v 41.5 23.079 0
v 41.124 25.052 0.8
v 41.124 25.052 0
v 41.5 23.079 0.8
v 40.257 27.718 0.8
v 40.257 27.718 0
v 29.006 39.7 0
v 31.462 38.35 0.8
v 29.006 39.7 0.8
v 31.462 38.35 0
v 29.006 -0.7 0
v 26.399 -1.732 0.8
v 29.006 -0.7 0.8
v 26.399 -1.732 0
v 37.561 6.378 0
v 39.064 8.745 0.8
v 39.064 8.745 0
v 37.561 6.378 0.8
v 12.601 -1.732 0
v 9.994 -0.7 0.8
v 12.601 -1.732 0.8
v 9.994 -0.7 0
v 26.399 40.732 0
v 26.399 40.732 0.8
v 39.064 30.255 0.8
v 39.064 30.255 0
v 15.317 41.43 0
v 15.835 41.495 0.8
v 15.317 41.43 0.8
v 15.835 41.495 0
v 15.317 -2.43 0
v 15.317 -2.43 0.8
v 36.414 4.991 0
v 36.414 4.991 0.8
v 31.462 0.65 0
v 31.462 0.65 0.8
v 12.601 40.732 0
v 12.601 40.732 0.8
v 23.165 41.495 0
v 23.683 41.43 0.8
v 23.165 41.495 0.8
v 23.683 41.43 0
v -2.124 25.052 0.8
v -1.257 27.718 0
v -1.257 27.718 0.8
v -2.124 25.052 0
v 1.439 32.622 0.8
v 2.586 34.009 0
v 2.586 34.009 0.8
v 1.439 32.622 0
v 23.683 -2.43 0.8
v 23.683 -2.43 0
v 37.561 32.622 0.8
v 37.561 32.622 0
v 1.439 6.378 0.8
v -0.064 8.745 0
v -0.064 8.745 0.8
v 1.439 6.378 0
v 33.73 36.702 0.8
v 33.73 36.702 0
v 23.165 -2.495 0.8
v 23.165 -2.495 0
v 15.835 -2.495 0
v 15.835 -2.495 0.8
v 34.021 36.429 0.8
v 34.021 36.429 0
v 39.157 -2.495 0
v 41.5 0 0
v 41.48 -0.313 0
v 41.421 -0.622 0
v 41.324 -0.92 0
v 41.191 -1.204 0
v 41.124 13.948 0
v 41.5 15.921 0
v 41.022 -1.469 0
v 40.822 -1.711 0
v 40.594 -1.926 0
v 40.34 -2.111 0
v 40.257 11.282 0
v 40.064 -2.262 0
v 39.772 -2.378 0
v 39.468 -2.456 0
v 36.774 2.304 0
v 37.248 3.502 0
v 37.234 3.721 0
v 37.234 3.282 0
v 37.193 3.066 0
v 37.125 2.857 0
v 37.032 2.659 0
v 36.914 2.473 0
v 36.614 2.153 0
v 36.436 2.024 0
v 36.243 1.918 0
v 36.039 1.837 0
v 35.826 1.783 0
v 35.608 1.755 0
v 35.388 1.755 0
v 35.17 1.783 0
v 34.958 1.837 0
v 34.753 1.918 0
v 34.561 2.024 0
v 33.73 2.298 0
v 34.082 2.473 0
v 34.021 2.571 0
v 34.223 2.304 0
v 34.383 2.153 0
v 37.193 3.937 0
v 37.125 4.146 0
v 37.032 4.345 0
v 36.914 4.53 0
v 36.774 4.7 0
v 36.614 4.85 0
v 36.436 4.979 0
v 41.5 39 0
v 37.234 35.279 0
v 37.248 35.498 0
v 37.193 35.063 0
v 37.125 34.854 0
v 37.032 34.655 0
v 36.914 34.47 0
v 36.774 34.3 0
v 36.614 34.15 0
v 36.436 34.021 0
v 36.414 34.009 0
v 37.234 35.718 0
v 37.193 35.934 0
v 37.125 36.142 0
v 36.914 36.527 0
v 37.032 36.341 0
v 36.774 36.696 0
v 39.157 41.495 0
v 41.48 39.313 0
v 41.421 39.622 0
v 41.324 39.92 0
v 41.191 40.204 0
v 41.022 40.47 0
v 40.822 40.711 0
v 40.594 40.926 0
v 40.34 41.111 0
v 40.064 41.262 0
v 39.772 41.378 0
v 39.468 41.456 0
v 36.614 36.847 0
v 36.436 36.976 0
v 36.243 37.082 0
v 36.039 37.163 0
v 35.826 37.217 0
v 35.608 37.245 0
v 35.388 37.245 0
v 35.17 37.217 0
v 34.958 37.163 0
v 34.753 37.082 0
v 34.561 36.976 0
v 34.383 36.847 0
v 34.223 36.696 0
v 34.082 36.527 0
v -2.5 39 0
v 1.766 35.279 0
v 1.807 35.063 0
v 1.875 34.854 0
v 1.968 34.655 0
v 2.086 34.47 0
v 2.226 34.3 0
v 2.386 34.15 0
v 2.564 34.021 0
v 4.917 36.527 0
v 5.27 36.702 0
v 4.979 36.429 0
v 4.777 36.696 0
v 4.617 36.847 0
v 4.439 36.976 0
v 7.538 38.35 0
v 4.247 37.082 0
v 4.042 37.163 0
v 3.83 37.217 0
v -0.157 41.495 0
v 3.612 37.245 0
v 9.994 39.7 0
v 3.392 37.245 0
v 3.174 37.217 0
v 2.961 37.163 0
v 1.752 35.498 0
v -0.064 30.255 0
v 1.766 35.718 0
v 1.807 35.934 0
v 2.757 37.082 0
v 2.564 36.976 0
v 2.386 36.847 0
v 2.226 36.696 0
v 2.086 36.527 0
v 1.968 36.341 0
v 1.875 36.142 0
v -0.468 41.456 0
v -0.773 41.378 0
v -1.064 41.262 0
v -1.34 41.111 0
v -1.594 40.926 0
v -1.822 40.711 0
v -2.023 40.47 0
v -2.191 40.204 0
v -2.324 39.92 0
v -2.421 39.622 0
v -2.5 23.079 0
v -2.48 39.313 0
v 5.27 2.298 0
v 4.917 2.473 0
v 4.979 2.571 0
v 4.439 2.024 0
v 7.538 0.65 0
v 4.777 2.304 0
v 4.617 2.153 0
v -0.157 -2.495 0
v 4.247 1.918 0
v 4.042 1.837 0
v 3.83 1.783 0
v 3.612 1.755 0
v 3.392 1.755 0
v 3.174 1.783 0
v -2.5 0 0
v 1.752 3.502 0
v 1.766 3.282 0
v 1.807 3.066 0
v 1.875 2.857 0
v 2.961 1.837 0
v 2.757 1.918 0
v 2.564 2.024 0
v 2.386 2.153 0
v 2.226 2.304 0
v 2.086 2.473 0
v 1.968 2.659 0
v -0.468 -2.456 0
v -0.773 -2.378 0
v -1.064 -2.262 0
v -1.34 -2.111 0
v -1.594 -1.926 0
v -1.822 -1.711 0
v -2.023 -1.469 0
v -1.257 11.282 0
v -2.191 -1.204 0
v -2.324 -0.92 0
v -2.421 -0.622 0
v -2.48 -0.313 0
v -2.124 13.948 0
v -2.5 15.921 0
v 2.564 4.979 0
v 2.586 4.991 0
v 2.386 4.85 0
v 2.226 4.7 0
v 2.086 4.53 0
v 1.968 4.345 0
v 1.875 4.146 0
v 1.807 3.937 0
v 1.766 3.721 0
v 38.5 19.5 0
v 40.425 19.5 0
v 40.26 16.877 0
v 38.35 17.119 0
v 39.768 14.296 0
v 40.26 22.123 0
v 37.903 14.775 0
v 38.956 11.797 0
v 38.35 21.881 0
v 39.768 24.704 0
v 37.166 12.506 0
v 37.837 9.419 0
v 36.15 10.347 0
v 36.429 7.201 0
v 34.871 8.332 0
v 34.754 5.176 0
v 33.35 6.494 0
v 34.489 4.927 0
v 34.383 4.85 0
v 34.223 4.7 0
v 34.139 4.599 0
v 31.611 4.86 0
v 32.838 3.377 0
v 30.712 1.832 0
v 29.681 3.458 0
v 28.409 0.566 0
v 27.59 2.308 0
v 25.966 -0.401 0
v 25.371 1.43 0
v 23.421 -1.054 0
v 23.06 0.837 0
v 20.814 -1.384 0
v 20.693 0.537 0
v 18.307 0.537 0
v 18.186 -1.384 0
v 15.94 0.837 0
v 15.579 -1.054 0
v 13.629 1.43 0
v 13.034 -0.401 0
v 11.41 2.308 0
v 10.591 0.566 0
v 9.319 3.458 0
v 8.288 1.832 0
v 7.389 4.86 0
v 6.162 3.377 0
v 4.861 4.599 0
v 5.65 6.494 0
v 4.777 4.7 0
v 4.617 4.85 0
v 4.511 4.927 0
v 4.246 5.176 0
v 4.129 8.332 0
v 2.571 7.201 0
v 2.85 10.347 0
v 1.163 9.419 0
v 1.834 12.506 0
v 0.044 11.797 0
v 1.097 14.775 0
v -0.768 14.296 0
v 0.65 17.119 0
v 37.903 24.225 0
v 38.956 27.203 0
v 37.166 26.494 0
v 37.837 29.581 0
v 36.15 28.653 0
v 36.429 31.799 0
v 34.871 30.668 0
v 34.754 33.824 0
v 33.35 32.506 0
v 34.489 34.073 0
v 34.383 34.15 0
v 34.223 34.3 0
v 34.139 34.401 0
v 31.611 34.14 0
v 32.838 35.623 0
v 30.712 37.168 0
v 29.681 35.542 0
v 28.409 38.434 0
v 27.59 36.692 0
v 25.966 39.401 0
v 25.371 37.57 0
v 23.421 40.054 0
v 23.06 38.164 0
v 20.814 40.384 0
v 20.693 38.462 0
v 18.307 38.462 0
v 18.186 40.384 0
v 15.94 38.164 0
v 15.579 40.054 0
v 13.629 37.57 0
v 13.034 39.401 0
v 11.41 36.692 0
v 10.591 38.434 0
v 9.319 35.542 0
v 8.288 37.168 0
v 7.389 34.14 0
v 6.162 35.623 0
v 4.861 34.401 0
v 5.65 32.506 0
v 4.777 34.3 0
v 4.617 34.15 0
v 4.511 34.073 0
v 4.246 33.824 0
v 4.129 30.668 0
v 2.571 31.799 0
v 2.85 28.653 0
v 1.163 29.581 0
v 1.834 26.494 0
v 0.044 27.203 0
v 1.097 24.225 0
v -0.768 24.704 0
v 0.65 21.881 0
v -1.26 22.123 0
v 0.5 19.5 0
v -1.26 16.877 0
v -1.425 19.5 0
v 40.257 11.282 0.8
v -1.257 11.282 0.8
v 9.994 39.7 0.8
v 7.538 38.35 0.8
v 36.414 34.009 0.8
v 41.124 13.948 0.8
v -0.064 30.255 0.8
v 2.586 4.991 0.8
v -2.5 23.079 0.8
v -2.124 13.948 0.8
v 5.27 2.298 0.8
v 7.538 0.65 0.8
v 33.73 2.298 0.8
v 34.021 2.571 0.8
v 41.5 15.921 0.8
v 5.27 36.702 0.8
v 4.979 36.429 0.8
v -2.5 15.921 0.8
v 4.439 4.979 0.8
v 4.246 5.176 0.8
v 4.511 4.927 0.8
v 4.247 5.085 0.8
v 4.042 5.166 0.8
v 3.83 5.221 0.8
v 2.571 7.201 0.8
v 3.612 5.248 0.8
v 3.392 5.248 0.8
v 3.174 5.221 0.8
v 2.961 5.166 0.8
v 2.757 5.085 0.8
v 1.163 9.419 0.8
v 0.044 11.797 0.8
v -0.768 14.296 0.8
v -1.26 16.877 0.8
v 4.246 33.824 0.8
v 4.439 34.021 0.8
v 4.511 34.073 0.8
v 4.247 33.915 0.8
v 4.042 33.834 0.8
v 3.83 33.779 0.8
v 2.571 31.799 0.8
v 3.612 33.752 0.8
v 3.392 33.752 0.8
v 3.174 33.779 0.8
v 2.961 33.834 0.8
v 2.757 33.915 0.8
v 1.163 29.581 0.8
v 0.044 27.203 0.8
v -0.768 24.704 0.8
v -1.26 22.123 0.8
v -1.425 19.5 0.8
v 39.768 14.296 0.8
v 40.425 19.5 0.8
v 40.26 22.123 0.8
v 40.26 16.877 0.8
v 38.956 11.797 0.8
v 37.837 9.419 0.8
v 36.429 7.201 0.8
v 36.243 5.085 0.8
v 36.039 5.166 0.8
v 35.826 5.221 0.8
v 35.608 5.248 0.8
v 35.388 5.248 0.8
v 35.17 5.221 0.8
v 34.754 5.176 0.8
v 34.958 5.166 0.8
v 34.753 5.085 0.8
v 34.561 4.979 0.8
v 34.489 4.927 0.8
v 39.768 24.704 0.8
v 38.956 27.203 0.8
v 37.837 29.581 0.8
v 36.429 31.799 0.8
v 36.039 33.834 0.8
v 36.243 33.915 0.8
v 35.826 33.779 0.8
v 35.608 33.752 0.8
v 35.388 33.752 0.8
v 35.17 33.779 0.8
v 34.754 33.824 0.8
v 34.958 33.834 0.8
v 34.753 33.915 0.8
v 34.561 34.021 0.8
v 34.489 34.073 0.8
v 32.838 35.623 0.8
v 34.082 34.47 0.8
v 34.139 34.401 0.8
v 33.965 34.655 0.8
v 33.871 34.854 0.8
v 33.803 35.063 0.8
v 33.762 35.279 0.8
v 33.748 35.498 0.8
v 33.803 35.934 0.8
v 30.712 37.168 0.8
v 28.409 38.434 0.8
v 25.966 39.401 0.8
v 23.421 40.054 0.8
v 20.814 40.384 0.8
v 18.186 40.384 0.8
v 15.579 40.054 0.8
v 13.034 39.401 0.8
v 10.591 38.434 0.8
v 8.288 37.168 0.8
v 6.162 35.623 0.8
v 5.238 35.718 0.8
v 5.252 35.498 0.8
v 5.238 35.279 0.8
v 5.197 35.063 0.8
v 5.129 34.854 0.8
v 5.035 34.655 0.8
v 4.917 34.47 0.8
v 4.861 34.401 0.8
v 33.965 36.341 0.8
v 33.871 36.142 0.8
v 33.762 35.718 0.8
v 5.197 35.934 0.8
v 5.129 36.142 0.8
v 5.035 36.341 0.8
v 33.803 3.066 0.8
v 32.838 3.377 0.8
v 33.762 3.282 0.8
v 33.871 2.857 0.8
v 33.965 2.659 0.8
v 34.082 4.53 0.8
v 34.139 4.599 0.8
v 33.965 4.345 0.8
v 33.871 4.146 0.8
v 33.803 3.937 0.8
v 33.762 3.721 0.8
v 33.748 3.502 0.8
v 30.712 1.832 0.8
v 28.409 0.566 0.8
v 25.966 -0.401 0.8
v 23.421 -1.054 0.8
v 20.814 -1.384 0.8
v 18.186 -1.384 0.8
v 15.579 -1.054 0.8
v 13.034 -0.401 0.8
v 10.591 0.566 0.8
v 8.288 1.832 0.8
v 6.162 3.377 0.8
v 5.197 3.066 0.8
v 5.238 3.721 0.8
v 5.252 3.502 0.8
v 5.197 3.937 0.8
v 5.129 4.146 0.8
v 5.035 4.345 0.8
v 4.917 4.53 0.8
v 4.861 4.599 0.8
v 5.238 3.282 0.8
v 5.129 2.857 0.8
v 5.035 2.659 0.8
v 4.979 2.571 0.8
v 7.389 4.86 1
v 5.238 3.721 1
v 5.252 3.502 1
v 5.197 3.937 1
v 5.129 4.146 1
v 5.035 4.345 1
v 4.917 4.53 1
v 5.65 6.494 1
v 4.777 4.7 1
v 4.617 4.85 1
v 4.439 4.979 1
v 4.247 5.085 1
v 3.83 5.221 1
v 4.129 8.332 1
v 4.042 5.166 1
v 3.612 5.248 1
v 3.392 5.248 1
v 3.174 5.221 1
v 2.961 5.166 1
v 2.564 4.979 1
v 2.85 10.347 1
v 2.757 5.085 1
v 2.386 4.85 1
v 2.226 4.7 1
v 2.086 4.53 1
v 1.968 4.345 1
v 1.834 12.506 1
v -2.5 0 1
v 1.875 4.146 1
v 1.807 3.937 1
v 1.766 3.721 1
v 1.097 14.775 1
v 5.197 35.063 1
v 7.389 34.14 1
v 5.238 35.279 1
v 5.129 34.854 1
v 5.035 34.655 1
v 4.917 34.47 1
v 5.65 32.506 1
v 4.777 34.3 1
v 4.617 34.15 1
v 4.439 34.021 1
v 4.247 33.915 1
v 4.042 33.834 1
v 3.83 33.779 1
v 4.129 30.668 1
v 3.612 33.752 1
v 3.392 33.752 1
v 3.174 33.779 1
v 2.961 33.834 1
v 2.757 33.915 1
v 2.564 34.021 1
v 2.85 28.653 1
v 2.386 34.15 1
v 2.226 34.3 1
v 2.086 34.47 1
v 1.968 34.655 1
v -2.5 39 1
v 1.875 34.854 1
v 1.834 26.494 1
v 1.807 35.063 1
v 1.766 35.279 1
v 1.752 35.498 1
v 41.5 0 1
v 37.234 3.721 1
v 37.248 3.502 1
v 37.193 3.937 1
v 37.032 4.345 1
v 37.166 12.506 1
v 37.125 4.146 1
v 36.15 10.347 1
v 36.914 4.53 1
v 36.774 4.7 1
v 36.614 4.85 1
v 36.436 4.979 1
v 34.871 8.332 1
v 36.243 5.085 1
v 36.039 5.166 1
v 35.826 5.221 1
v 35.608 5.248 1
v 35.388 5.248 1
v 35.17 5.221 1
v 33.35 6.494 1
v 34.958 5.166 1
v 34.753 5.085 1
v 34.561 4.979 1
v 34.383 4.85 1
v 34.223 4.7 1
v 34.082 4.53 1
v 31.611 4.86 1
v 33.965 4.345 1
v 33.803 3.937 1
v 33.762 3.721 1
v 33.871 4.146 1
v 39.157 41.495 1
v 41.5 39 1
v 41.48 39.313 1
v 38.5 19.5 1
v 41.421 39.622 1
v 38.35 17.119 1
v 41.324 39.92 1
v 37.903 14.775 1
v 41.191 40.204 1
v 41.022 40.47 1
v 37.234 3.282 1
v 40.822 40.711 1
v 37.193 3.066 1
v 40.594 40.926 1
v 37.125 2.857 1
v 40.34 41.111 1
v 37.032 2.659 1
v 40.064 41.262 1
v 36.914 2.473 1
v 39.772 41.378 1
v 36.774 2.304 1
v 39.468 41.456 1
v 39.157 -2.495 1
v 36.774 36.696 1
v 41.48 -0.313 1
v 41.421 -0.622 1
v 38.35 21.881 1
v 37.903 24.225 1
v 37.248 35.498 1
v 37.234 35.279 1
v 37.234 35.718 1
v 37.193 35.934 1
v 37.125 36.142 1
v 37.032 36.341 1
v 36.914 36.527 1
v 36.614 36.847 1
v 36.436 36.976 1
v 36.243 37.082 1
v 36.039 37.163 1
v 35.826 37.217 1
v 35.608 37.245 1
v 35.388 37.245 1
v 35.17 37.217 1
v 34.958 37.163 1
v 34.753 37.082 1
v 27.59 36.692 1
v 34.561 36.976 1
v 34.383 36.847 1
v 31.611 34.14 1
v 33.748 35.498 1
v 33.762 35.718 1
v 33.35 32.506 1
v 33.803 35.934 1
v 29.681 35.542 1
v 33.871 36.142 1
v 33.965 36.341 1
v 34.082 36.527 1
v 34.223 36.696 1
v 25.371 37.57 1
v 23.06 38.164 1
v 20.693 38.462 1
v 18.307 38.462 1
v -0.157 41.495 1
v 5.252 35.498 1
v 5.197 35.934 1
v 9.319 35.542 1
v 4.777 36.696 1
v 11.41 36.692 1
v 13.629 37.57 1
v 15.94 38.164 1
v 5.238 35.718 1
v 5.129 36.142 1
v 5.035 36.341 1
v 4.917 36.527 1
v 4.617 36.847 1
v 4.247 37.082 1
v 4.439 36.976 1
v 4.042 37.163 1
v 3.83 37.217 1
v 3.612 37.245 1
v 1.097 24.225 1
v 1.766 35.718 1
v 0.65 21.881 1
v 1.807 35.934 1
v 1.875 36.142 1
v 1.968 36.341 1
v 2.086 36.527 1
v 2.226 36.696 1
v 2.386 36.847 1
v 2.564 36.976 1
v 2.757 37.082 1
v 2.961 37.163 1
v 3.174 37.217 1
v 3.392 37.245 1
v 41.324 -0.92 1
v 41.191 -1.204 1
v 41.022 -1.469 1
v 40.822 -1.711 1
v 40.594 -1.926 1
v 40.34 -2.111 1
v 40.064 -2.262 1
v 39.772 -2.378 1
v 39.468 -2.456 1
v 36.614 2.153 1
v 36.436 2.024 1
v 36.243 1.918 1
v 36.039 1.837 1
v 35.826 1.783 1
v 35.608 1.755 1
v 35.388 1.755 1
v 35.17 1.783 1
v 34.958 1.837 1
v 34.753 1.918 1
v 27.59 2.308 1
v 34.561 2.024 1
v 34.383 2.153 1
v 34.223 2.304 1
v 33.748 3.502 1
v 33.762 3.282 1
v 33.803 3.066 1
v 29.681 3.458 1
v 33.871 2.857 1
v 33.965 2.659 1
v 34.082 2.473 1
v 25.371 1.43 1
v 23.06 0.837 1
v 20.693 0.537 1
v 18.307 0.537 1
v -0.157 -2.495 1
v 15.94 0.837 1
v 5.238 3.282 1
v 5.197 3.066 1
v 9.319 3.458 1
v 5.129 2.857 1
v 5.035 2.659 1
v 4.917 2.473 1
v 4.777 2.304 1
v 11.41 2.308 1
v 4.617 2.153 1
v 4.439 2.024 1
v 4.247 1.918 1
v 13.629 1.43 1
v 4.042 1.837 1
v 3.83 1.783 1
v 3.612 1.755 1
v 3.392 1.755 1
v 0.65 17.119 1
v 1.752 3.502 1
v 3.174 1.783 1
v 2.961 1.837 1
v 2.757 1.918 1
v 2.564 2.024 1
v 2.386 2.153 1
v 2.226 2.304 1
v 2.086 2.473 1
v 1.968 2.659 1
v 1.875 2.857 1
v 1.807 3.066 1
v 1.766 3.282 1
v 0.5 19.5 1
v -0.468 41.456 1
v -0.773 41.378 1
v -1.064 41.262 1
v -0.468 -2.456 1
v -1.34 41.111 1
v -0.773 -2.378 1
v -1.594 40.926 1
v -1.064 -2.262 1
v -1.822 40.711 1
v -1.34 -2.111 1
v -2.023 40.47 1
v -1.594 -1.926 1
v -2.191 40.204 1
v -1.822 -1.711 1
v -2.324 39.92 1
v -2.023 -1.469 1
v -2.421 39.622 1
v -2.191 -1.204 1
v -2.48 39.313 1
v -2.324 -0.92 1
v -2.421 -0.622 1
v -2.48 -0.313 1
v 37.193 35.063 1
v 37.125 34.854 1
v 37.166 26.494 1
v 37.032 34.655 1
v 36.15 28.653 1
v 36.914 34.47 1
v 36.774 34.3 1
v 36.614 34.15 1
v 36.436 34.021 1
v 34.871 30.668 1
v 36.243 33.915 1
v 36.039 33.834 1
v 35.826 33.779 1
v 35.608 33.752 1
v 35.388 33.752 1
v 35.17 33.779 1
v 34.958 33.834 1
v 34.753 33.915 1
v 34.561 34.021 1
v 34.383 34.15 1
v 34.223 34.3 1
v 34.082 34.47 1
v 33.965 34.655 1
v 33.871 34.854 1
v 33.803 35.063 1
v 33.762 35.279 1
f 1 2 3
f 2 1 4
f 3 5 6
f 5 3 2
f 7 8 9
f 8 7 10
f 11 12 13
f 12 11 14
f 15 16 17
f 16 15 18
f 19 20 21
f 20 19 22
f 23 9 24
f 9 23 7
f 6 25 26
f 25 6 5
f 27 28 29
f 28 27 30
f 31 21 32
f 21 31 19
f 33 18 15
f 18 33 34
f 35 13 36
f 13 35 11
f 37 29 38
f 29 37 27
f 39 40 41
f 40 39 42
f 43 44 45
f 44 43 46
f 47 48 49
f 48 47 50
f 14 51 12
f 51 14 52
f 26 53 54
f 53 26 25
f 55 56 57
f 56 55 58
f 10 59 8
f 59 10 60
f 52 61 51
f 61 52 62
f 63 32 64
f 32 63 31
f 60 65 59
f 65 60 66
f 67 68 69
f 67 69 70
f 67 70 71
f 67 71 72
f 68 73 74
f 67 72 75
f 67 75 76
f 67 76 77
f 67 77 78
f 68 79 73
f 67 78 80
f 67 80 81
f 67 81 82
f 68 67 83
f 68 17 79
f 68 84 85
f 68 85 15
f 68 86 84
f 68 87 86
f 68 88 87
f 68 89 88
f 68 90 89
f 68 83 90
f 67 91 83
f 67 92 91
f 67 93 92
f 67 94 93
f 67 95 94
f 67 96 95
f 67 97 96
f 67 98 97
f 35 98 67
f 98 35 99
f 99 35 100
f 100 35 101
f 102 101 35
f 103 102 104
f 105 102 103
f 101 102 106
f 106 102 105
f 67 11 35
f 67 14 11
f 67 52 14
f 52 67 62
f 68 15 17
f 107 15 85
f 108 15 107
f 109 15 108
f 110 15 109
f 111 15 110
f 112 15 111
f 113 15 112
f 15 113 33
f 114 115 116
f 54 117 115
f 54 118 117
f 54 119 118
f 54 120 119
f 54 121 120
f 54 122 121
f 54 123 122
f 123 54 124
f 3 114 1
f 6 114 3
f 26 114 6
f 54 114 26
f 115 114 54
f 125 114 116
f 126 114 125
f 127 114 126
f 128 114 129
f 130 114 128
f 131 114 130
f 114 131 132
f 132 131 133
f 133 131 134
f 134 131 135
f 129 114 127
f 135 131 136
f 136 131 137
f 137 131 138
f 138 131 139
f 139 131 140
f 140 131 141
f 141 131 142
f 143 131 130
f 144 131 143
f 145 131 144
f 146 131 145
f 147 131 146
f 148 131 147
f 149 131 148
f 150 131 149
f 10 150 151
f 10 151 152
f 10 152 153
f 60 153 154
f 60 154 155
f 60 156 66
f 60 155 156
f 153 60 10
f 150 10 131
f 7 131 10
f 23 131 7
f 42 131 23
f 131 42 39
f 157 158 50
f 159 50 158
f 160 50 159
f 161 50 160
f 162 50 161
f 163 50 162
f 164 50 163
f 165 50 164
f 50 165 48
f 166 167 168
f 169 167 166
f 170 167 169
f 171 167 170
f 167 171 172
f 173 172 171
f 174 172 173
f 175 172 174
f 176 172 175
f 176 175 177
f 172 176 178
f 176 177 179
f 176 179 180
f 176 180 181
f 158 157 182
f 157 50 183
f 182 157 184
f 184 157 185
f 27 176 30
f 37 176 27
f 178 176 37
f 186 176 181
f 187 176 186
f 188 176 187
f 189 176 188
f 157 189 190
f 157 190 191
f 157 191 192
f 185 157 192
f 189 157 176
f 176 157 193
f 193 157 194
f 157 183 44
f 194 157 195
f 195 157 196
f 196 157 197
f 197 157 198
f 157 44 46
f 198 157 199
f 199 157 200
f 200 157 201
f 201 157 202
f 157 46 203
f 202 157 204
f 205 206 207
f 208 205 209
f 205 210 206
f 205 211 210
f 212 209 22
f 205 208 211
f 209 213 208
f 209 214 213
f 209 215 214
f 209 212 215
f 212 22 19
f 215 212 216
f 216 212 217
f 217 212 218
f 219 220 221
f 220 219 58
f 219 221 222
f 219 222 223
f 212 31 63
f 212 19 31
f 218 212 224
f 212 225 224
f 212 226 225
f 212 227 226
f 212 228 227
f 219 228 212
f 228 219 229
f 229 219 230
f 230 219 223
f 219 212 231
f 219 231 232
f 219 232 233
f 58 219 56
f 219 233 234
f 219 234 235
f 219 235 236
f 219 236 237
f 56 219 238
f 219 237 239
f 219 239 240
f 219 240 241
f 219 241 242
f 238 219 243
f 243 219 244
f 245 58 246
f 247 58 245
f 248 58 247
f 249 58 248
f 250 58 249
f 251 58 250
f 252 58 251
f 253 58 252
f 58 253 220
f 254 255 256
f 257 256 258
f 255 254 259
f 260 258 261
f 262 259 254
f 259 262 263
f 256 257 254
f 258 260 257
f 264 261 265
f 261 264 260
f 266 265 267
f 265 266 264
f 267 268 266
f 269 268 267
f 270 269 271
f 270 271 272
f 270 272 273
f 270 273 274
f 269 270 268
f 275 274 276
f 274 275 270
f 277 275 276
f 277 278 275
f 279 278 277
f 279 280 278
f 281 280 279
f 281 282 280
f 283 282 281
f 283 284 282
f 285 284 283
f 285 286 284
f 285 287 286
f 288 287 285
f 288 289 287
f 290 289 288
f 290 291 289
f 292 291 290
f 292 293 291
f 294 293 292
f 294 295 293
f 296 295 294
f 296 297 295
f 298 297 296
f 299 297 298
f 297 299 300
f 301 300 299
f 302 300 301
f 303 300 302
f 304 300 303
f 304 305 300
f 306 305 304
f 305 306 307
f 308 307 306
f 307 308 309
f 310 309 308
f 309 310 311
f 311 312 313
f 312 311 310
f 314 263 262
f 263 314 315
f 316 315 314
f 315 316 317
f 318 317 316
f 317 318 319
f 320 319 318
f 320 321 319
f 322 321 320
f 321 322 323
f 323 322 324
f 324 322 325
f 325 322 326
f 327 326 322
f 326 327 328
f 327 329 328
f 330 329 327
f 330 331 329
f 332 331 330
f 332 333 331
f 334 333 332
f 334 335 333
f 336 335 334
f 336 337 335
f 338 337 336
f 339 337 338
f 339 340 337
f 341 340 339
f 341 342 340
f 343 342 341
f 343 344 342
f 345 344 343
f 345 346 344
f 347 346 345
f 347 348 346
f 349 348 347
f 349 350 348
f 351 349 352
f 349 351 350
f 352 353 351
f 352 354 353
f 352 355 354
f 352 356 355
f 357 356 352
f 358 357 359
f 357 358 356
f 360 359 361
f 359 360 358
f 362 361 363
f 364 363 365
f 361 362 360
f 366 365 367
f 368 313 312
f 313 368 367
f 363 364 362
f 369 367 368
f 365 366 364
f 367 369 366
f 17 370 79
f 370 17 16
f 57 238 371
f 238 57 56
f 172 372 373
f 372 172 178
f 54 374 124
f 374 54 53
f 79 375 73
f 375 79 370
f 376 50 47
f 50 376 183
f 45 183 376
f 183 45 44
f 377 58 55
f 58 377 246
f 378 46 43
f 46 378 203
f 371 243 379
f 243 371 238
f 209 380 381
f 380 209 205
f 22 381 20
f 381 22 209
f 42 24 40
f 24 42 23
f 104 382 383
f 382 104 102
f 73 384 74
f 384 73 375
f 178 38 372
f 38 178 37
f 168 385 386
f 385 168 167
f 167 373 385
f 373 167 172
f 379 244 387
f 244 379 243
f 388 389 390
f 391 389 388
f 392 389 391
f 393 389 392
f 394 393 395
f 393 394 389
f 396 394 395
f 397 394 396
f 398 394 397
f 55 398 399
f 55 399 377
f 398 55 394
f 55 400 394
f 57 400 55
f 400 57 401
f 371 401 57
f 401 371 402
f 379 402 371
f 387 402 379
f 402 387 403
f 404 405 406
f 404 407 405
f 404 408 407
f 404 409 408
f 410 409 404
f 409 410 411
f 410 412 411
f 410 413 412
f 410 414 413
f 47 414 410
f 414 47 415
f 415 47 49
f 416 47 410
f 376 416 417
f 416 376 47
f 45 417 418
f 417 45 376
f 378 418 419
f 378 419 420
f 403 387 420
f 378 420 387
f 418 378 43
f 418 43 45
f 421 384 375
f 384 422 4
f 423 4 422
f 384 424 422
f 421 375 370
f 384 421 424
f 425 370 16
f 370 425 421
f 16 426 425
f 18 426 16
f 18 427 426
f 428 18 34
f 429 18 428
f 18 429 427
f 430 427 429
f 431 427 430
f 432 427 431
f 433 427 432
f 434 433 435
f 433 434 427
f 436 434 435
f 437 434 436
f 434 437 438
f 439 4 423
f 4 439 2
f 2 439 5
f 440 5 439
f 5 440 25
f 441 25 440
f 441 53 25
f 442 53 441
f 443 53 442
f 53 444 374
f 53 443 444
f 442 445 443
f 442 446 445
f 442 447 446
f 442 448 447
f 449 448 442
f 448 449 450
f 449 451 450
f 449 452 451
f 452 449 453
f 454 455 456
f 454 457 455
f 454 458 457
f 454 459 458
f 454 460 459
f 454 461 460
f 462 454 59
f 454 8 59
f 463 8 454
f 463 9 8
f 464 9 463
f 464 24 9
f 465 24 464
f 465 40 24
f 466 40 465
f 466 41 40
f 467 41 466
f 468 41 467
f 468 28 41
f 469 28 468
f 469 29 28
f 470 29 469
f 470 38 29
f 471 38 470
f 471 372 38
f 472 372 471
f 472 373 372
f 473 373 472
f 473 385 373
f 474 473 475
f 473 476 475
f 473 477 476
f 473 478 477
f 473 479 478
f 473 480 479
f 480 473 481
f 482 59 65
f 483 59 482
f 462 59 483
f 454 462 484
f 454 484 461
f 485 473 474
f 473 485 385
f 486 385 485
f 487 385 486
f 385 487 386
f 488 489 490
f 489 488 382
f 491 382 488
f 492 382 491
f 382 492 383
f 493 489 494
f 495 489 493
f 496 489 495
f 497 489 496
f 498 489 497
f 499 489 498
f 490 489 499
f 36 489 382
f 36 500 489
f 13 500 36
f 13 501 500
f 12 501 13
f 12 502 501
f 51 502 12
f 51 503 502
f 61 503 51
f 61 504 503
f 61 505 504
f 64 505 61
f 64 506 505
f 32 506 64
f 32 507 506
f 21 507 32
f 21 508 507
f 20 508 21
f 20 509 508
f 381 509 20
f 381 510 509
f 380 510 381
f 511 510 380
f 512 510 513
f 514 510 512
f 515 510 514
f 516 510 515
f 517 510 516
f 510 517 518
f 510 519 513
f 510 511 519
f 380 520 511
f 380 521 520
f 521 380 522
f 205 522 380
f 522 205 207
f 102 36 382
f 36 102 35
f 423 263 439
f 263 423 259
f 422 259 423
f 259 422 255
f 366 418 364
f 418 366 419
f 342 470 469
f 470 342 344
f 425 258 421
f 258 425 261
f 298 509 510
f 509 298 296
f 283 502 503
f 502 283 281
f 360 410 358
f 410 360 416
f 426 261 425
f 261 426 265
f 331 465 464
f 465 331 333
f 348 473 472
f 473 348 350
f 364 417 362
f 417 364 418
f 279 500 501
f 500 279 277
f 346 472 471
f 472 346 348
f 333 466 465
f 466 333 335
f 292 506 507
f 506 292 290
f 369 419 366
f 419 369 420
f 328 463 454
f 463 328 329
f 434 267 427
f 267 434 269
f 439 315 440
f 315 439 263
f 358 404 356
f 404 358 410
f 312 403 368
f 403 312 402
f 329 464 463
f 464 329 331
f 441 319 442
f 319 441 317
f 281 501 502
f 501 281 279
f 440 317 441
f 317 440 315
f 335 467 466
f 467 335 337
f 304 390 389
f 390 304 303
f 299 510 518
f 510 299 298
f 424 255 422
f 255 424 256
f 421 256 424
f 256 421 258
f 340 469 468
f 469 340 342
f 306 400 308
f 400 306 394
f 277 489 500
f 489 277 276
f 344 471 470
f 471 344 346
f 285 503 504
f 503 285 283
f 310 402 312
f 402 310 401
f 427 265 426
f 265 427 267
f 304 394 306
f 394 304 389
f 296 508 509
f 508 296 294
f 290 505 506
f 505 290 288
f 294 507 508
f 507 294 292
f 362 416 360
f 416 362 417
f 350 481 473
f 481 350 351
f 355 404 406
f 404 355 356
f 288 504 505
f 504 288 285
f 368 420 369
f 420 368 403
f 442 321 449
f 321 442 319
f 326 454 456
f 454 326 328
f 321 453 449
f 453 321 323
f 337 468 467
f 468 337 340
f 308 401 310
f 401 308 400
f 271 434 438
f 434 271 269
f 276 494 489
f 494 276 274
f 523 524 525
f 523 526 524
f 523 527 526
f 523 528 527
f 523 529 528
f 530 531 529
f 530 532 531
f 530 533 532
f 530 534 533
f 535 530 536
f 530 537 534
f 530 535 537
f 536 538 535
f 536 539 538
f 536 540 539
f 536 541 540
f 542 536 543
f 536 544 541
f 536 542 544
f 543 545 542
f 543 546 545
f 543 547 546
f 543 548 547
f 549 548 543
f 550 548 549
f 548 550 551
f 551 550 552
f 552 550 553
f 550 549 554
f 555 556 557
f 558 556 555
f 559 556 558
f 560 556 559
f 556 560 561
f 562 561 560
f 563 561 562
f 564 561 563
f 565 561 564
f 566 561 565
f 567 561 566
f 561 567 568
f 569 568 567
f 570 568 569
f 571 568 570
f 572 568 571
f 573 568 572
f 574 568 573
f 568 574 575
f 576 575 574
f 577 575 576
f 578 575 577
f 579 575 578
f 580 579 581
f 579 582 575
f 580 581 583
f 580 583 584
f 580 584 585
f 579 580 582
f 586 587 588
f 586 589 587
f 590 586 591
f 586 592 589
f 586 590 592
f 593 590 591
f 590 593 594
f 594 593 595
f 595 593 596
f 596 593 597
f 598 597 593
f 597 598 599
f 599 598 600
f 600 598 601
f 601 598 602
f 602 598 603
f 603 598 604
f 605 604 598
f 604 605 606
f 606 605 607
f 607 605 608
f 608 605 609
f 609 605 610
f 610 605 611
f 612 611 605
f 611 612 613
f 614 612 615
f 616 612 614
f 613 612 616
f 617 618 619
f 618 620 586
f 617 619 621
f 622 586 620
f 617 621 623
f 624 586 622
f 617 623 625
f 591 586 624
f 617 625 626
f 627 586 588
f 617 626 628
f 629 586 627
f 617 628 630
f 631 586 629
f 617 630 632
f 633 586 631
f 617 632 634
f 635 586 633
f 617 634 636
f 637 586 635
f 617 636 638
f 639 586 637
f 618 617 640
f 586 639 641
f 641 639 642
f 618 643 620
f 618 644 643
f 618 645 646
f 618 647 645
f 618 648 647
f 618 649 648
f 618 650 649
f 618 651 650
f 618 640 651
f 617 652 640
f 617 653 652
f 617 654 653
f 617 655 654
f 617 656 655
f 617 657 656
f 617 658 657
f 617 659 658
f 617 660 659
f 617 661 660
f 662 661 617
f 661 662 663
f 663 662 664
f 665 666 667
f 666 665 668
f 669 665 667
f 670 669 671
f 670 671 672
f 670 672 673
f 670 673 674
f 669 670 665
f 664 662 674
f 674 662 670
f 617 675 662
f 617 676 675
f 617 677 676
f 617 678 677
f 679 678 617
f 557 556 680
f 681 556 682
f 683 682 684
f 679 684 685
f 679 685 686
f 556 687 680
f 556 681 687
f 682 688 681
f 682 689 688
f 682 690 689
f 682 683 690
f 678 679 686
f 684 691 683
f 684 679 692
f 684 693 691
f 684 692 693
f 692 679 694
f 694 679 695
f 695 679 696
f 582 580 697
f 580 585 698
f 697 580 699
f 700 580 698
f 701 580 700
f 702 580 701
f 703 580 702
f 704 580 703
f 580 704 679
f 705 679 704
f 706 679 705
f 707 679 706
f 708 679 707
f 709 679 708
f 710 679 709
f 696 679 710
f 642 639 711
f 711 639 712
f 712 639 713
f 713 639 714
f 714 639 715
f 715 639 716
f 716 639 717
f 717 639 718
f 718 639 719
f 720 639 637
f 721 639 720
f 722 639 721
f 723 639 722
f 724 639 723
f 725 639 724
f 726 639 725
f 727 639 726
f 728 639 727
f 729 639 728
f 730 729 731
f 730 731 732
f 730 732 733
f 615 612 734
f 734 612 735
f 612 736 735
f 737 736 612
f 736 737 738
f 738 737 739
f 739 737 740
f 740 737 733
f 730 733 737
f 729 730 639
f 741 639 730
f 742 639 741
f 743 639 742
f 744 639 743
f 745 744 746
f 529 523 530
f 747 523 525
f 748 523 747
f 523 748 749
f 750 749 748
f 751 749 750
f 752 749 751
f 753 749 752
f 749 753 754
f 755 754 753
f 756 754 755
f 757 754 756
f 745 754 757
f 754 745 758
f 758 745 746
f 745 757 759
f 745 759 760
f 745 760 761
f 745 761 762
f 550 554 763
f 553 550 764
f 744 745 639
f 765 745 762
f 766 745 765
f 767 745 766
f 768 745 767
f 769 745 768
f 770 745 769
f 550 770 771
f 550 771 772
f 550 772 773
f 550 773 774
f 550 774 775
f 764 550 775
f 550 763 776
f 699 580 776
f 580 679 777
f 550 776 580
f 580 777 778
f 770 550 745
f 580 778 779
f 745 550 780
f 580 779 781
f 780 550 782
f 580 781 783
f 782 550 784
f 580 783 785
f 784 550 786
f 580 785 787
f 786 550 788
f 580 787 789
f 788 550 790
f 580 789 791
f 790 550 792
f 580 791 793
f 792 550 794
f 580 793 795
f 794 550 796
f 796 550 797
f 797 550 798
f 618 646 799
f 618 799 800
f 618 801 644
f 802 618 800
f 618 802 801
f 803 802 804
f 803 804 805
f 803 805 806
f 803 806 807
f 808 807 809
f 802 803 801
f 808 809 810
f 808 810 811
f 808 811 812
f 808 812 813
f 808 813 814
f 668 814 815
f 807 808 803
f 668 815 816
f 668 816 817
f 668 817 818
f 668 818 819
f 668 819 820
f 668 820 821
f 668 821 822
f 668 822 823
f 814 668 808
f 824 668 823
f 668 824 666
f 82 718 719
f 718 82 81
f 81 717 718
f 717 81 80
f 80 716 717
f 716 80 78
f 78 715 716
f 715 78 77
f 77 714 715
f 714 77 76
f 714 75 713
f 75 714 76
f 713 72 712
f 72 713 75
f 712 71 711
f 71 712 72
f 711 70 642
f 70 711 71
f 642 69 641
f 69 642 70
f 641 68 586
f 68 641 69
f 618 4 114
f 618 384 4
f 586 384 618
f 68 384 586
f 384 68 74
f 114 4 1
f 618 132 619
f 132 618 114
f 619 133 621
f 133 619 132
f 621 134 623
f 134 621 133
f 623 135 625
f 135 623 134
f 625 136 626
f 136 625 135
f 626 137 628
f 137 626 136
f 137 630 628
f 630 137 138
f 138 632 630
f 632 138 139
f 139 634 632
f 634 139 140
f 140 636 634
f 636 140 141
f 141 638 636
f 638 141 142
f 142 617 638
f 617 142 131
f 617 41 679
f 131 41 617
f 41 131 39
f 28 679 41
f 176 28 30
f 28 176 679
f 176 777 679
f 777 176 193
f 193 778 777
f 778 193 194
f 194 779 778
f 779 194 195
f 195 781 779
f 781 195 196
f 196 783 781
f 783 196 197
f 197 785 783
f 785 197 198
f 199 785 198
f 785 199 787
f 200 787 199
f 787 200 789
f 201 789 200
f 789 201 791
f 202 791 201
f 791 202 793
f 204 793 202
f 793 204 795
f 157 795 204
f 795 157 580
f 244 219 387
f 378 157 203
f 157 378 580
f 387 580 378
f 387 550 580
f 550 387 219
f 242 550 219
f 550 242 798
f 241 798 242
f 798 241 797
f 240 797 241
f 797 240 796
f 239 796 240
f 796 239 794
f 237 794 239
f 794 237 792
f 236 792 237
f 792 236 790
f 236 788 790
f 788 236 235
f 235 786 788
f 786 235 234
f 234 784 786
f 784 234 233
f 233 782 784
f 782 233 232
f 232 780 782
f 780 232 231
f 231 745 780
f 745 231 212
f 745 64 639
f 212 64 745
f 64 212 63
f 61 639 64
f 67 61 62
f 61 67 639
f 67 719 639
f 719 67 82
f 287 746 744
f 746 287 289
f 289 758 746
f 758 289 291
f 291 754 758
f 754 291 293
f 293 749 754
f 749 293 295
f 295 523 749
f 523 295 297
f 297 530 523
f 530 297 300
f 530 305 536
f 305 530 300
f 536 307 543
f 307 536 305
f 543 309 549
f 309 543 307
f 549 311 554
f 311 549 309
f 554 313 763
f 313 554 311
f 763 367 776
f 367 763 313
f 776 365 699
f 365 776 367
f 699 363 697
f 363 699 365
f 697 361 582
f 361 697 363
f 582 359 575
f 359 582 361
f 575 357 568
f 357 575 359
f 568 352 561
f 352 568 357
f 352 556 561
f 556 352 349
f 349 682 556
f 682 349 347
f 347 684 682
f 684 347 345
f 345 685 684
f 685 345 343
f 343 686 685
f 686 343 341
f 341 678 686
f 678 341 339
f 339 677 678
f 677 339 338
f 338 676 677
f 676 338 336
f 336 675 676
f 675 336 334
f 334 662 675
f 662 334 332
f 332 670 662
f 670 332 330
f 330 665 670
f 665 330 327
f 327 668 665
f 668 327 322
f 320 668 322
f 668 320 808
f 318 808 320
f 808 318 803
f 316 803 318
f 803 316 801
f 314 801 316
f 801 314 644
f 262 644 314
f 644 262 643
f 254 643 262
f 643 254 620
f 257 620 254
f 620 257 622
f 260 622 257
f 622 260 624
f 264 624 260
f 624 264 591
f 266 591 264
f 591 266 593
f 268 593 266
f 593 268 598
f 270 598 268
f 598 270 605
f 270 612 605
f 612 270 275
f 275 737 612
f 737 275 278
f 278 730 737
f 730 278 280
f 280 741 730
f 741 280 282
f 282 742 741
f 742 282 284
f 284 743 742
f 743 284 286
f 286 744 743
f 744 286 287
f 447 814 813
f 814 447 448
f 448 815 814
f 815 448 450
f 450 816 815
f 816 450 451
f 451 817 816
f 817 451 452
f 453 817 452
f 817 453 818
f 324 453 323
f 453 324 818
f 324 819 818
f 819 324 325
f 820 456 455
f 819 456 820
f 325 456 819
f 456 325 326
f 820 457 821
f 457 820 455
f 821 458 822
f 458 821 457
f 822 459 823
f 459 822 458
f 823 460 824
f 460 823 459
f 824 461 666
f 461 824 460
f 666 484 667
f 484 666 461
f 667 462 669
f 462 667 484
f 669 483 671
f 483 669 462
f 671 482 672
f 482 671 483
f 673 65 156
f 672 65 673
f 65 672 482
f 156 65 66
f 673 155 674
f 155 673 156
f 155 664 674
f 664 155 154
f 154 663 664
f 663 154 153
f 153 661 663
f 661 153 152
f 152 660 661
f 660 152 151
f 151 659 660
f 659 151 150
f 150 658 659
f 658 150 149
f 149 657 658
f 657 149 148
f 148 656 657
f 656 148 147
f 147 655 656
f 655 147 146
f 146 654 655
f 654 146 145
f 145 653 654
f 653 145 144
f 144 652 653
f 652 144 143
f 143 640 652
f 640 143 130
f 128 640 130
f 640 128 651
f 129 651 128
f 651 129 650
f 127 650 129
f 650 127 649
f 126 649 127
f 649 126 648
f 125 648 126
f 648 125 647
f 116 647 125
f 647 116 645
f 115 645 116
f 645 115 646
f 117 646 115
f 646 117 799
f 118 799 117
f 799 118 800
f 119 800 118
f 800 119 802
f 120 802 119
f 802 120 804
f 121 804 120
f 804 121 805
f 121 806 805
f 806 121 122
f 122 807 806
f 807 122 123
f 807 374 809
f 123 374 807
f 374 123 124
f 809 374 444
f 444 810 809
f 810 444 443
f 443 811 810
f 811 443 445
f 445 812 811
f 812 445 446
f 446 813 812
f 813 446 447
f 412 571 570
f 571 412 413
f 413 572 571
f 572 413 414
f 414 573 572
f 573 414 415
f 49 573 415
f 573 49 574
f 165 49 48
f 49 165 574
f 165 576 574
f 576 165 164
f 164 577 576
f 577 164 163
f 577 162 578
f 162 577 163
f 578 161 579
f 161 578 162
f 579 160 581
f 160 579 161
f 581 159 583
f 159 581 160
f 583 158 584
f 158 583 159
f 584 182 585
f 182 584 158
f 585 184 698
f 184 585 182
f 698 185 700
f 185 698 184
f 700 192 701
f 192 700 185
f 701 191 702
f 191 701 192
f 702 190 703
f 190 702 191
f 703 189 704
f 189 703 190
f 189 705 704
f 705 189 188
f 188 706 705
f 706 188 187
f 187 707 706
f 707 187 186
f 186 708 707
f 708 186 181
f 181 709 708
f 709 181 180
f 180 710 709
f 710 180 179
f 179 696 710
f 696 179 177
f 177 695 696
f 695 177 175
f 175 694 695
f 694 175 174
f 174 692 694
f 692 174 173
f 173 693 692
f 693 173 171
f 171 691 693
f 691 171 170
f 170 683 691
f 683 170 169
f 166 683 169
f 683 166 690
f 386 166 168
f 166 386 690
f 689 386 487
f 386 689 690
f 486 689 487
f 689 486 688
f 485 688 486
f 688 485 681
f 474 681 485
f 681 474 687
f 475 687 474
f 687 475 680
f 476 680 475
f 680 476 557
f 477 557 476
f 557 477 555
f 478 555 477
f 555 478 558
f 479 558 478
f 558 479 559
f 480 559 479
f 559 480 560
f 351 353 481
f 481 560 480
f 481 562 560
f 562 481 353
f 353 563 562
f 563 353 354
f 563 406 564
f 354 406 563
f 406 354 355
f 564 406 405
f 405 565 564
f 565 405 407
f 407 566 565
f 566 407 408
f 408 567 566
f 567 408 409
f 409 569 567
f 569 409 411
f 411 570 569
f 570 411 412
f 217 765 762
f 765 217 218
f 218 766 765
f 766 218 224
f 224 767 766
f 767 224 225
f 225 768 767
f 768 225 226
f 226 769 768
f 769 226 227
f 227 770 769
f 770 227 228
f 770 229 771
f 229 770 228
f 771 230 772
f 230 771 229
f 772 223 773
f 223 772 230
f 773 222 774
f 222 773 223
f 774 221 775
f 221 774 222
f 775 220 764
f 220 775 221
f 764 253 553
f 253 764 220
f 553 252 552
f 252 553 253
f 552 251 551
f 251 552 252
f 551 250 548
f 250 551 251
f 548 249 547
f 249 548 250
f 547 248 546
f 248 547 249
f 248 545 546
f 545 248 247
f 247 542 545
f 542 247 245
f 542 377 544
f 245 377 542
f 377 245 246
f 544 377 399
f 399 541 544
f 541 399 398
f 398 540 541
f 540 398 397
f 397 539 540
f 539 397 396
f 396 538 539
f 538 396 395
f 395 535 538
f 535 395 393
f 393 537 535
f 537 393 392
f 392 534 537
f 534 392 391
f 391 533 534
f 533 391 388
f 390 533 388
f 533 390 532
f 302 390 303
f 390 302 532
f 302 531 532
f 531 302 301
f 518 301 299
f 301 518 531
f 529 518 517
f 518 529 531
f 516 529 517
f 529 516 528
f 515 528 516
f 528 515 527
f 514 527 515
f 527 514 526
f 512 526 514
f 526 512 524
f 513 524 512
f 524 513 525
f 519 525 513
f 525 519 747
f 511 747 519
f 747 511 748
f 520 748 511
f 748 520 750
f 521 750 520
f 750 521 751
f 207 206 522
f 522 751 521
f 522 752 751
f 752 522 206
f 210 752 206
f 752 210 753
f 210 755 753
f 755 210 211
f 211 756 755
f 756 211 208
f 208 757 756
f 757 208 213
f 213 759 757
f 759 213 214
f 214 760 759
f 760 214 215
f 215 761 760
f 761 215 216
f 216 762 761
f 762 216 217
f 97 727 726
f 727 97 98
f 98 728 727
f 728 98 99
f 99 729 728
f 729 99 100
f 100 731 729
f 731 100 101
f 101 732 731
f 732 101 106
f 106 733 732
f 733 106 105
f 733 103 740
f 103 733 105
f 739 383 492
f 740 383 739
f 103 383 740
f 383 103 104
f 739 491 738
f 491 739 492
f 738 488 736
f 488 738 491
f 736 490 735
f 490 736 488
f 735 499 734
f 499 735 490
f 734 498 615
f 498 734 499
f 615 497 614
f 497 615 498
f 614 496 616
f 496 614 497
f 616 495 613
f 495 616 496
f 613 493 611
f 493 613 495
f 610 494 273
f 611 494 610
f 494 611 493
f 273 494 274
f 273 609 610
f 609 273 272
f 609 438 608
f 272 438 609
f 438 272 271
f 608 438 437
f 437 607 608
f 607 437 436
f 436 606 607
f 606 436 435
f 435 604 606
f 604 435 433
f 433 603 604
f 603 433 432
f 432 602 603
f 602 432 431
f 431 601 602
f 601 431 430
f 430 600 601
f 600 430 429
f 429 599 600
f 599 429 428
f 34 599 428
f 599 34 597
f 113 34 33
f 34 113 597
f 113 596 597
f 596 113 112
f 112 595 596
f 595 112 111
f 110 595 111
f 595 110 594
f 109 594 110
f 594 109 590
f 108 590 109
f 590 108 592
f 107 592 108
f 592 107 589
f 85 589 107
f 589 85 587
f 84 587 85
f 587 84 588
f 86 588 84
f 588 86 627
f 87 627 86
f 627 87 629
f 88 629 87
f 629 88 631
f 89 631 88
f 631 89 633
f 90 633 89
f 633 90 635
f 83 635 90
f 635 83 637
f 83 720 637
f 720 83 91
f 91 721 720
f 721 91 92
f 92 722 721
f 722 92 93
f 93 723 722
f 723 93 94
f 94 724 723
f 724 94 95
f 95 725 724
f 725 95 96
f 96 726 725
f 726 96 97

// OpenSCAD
//
$fn=50;

// fan hole
r1=19;
// outer edges
xy=44;
rxy=2.5;
extra=2;
// thickness
th=1;
th_off=th-0.2;

rp1=20;
rp2=22;

ro=45.25/2;
rs=3.5/2;

// gasket
gth=1.4;
gr=ro-1.7;

difference() {
    linear_extrude(th) {
    difference() {
        // outer body
        minkowski() {
            square([xy-2*rxy,xy-2*rxy]);
            circle(r=rxy);
        }
        // Fan hole
        translate([xy/2-rxy,xy/2-rxy]) circle(r=r1);
        // mount hole
        translate([xy/2-rxy+ro*sqrt(2)/2,xy/2-rxy+ro*sqrt(2)/2]) circle(r=rs);
        translate([xy/2-rxy-ro*sqrt(2)/2,xy/2-rxy+ro*sqrt(2)/2]) circle(r=rs);
        translate([xy/2-rxy-ro*sqrt(2)/2,xy/2-rxy-ro*sqrt(2)/2]) circle(r=rs);
        translate([xy/2-rxy+ro*sqrt(2)/2,xy/2-rxy-ro*sqrt(2)/2]) circle(r=rs);
    }
    }
    // gasket
    translate([xy/2-rxy,xy/2-rxy]) difference() {
        cylinder(th_off,r=(gr+gth));
        cylinder(th_off,r=gr);
    }
}
